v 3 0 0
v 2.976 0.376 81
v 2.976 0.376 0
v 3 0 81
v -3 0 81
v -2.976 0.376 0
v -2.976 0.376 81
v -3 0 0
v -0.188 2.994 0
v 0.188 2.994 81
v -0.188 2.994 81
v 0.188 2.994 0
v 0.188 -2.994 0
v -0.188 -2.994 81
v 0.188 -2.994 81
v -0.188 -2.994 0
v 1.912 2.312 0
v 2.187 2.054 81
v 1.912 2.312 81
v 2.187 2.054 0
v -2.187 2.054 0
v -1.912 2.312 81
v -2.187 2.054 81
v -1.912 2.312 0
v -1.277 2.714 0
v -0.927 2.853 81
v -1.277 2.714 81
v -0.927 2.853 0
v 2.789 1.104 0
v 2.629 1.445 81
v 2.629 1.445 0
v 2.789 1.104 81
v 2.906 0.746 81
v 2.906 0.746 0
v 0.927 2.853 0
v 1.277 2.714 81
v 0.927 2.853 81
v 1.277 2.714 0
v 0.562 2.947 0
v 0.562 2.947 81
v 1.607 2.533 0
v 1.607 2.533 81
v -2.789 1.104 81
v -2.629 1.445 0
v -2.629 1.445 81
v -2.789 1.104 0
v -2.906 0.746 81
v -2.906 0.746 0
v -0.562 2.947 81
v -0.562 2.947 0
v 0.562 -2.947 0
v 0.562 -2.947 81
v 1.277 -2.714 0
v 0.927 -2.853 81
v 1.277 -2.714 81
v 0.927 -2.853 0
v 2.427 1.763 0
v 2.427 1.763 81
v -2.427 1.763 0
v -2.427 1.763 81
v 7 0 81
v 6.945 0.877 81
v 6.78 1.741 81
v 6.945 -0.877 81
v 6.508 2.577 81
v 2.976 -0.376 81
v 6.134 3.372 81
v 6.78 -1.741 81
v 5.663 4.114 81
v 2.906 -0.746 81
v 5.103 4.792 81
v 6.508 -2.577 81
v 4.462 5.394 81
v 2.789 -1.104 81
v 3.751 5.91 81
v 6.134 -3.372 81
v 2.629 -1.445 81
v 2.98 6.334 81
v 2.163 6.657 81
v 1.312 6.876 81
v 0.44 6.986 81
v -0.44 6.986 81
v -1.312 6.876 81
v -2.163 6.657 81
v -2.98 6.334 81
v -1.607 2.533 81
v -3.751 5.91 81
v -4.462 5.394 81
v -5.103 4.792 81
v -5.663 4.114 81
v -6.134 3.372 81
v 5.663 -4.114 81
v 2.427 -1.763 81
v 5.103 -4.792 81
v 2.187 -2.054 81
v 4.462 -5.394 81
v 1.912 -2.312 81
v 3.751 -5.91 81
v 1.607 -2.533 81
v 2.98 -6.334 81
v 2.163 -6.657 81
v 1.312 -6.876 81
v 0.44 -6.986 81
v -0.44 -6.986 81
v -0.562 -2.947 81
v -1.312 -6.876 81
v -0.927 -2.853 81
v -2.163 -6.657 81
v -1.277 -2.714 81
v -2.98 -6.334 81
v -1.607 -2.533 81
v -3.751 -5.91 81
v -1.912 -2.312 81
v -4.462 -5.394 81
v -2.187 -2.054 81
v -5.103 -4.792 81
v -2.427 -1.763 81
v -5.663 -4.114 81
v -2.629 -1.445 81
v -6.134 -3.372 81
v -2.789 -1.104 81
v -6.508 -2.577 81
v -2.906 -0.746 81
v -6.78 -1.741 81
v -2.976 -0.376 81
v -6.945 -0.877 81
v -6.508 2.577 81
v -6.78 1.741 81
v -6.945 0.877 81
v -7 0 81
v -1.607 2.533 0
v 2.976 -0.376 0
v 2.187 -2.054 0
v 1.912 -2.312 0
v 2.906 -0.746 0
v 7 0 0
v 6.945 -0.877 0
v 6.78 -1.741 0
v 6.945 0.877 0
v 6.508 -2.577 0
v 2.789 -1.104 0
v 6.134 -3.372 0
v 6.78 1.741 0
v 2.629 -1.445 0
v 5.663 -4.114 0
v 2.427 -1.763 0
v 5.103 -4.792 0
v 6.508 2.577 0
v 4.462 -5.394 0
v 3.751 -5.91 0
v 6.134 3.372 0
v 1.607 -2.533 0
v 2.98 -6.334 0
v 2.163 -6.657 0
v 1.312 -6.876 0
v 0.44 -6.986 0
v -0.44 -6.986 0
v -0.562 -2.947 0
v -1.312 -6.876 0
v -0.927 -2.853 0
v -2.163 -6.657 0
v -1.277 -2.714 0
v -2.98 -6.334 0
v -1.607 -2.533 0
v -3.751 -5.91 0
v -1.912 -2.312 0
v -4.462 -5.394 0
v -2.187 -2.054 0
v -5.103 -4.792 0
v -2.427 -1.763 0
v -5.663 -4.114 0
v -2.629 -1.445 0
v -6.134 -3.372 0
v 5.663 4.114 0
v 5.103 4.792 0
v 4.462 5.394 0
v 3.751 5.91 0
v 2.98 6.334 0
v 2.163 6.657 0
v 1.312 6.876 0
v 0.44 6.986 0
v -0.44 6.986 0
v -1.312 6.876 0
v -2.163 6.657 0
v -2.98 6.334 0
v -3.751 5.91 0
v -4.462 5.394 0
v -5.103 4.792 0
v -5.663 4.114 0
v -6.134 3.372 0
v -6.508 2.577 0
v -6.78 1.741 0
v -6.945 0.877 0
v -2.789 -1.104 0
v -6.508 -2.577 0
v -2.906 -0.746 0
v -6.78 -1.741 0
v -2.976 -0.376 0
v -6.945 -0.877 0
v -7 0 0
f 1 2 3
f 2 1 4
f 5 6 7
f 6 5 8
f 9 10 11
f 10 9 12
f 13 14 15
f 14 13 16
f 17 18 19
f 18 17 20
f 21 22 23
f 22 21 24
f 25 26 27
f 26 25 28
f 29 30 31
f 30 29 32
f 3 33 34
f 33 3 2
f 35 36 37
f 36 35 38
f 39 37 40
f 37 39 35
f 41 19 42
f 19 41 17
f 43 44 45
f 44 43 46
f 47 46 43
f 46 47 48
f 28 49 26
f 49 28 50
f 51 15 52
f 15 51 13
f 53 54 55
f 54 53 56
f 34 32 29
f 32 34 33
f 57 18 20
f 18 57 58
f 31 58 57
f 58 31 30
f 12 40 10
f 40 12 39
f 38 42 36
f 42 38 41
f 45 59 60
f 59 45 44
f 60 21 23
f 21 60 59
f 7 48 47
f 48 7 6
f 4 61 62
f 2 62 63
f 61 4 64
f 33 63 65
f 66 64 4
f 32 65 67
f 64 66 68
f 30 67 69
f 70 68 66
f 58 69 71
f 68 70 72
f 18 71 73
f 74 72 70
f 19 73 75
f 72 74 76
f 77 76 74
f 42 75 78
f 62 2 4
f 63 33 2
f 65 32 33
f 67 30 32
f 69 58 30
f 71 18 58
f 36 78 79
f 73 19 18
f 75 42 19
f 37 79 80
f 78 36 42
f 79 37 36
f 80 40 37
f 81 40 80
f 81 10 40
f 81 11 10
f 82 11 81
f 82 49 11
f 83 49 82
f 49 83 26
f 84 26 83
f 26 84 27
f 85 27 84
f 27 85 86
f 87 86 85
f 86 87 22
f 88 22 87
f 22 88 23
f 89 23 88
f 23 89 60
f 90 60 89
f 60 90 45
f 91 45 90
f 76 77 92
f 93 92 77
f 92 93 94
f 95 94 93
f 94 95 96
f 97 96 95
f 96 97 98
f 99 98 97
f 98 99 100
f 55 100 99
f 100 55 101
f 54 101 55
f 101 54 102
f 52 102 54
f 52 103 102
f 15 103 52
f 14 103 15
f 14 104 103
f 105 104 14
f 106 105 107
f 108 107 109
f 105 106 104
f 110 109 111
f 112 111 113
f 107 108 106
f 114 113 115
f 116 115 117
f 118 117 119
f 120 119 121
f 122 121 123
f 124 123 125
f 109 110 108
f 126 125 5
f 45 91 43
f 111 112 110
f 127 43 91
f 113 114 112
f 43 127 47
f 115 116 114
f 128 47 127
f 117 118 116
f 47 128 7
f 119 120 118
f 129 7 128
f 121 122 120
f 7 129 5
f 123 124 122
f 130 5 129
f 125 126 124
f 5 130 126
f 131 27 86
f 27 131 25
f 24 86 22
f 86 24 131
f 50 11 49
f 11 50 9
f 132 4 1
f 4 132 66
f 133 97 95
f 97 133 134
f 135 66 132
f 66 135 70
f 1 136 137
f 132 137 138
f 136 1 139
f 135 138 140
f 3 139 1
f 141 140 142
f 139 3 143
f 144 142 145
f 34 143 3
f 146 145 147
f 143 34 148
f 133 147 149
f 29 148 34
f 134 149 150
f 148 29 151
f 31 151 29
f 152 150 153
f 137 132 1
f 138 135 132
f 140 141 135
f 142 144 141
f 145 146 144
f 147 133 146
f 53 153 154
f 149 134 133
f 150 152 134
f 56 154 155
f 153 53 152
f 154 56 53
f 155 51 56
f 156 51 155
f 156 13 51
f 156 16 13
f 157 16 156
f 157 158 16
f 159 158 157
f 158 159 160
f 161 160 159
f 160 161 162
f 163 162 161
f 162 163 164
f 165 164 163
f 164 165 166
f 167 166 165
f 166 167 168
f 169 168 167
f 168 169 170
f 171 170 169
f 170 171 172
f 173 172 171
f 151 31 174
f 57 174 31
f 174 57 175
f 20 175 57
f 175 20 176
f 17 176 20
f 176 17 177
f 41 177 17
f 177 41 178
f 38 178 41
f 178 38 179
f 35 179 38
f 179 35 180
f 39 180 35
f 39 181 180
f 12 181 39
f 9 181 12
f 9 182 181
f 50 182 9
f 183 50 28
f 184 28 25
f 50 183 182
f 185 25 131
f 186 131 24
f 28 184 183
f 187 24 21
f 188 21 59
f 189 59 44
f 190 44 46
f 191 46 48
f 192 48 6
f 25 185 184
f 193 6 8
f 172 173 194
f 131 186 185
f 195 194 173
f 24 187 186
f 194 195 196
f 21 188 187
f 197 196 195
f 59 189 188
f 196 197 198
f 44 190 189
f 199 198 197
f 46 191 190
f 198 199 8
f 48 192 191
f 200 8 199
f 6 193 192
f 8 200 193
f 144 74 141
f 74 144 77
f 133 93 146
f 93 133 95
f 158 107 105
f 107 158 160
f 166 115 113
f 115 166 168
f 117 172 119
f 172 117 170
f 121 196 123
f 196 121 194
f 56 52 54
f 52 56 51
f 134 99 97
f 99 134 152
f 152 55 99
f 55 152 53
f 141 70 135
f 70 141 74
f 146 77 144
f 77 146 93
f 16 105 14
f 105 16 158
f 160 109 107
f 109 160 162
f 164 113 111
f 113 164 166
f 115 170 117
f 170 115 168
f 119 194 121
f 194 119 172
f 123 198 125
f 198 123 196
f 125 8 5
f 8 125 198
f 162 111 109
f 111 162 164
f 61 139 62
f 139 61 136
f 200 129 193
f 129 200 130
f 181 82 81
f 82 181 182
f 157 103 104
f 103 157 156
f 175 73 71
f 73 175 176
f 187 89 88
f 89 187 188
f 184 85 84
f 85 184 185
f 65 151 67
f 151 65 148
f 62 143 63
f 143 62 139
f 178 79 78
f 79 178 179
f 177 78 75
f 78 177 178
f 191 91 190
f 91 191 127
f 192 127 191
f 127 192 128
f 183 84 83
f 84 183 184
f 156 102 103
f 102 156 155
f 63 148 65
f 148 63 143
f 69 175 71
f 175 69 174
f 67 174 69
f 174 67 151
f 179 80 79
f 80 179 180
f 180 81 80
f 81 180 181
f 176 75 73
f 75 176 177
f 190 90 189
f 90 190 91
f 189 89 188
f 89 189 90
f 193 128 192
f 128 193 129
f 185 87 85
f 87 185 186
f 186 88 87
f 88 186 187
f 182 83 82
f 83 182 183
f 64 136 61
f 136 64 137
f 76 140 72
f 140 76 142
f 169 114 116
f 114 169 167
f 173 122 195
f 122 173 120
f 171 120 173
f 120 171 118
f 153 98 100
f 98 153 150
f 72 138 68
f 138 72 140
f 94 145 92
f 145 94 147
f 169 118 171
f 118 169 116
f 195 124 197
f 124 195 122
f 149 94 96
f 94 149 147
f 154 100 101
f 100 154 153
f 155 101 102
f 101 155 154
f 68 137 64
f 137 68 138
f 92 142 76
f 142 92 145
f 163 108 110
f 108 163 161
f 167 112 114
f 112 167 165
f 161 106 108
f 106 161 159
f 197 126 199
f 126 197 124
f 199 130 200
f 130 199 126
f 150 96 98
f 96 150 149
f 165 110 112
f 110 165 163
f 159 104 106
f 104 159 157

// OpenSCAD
$fn = 50;


difference() {
	union() {
		cylinder(h = 81, r = 7.0000000000);
	}
	union() {
		cylinder(h = 81, r = 3.0000000000);
		cylinder(h = 81, r = 3.0000000000);
		cylinder(h = 81, r = 1.5000000000);
		cylinder(h = 81, r = 1.5000000000);
		cylinder(h = 81, r = 1.5000000000);
		cylinder(h = 81, r = 1.5000000000);
		cylinder(h = 81, r = 1.5000000000);
		cylinder(h = 81, r = 1.5000000000);
	}
}
